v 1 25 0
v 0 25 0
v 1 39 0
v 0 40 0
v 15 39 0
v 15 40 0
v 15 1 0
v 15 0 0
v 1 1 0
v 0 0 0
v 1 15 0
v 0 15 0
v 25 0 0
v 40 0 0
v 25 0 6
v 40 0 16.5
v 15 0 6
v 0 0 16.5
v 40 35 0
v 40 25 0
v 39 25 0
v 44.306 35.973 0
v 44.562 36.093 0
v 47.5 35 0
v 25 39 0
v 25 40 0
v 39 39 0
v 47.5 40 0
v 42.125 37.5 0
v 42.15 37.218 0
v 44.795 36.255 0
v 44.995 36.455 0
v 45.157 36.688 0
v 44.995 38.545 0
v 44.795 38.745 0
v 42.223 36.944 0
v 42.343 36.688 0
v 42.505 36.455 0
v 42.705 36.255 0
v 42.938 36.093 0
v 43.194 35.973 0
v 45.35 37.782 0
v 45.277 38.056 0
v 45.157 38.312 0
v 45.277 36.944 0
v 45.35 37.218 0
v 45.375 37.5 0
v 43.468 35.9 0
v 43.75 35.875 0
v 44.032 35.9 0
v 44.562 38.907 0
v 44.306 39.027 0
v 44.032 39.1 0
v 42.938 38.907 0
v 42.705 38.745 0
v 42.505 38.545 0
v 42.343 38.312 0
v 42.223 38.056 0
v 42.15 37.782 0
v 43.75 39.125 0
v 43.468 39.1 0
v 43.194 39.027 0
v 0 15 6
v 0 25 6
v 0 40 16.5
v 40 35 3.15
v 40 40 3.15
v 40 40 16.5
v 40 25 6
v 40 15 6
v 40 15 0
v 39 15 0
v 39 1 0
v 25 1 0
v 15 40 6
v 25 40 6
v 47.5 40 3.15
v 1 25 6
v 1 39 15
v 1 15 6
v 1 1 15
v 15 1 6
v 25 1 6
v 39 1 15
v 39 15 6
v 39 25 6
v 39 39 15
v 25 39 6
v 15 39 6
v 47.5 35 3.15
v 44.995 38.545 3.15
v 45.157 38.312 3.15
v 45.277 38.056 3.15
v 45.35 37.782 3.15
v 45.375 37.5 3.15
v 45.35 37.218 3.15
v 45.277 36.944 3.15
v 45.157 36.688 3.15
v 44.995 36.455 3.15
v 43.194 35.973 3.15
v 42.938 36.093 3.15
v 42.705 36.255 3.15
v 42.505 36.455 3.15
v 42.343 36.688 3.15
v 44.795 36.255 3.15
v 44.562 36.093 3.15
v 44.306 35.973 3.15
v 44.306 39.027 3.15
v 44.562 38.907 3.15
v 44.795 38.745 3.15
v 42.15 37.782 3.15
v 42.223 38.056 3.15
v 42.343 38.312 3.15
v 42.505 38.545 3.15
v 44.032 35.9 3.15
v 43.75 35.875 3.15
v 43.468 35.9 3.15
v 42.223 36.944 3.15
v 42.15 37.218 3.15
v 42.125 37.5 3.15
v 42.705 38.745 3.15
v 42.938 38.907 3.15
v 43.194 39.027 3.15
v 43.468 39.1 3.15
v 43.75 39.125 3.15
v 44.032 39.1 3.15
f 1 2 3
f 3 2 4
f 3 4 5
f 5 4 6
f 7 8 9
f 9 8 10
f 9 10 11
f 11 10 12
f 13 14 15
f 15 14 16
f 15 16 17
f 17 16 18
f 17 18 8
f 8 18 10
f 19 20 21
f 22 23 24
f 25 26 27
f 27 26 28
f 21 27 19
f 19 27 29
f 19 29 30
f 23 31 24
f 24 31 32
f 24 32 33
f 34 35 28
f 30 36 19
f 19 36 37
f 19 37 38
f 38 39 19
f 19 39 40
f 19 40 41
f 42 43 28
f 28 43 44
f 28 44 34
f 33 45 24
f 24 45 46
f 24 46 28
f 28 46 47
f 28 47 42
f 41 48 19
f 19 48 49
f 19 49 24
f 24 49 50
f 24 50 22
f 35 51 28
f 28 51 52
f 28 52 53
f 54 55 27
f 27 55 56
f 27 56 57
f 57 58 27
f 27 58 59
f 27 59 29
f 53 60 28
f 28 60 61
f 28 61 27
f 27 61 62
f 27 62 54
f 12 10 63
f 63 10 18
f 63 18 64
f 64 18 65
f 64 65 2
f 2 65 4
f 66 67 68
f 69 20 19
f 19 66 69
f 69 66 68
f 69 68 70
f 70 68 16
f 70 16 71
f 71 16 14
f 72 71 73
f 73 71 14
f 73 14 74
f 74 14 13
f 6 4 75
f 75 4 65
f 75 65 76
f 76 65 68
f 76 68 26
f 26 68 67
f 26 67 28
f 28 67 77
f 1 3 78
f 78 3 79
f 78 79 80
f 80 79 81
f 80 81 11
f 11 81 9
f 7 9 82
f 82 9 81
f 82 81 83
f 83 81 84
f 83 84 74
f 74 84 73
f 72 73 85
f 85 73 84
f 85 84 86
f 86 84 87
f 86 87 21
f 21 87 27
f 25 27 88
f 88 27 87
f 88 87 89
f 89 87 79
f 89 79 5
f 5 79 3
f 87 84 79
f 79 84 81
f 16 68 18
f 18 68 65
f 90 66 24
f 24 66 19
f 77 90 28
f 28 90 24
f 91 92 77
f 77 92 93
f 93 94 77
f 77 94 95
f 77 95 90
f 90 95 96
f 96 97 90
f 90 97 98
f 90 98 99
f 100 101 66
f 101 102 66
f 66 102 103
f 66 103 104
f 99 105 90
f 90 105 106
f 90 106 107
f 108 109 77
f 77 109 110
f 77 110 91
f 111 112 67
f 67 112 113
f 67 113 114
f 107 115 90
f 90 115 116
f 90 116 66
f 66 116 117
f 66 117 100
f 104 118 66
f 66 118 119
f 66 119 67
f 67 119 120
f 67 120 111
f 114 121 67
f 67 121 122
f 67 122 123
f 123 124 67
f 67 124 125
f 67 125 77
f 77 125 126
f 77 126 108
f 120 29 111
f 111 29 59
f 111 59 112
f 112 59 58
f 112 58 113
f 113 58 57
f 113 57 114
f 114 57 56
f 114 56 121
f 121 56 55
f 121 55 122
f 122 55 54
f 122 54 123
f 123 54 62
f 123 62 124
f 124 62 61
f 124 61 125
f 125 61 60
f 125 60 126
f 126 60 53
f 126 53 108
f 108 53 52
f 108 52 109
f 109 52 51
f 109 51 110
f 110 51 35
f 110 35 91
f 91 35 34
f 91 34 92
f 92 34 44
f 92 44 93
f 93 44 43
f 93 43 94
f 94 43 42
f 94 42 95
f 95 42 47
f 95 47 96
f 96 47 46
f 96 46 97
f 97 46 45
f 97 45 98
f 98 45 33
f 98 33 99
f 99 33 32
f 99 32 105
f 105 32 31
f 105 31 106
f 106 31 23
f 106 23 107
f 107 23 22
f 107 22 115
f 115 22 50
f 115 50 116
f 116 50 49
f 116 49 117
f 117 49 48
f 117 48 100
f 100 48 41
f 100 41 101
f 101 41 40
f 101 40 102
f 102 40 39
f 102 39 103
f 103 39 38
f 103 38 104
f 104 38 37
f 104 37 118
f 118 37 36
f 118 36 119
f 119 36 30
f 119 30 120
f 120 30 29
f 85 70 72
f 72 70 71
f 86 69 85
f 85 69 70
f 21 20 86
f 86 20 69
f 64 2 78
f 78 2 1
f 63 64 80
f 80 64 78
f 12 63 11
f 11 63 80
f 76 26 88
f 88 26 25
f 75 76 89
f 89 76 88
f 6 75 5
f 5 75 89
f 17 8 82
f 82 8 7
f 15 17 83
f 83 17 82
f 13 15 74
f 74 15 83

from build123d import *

# Parameters (mm, degrees)
SKETCH1_W               = 40
SKETCH1_H               = 40
SKETCH1_W_2             = 38
SKETCH1_H_2             = 38
BOSS_EXTRUDE1_DEPTH     = 15
SKETCH2_W               = 40
SKETCH2_H               = 40
BOSS_EXTRUDE2_DEPTH     = 1.5
SKETCH3_W               = 7.5
SKETCH3_H               = 5
SKETCH3_R               = 1.625
BOSS_EXTRUDE3_DEPTH     = 3.15
SKETCH4_W               = 6
SKETCH4_H               = 10
CUT_EXTRUDE1_DEPTH      = 1
CUT_EXTRUDE1_DEPTH_BACK = 48.5
SKETCH5_W               = 10
SKETCH5_H               = 6
CUT_EXTRUDE2_DEPTH      = 1
CUT_EXTRUDE2_DEPTH_BACK = 41


with BuildPart() as part:
    # Sketch1 → Boss-Extrude1 (new body)
    with BuildSketch(Plane.XY):
        with Locations((20, 20)):
            Rectangle(SKETCH1_W, SKETCH1_H)
        with Locations((20, 20)):
            Rectangle(SKETCH1_W_2, SKETCH1_H_2, mode=Mode.SUBTRACT)
    extrude(amount=BOSS_EXTRUDE1_DEPTH)

    # Sketch2 → Boss-Extrude2 (add)
    with BuildSketch(Plane.XY.offset(15)):
        with Locations((20, 20)):
            Rectangle(SKETCH2_W, SKETCH2_H)
    extrude(amount=BOSS_EXTRUDE2_DEPTH)

    # Sketch3 → Boss-Extrude3 (add)
    with BuildSketch(Plane(origin=(0, 0, 0), x_dir=(-1, 0, 0), z_dir=(0, 0, -1))):
        with Locations((-43.75, 37.5)):
            Rectangle(SKETCH3_W, SKETCH3_H)
        with Locations((-43.75, 37.5)):
            Circle(SKETCH3_R, mode=Mode.SUBTRACT)
    extrude(amount=-BOSS_EXTRUDE3_DEPTH)

    # Sketch4 → Cut-Extrude1 (cut, two sides)
    with BuildSketch(Plane.ZY) as cut_extrude1_sk:
        with Locations((3, 20)):
            Rectangle(SKETCH4_W, SKETCH4_H)
    extrude(amount=CUT_EXTRUDE1_DEPTH, mode=Mode.SUBTRACT)
    extrude(cut_extrude1_sk.sketch, amount=-CUT_EXTRUDE1_DEPTH_BACK, mode=Mode.SUBTRACT)

    # Sketch5 → Cut-Extrude2 (cut, two sides)
    with BuildSketch(Plane.XZ) as cut_extrude2_sk:
        with Locations((20, 3)):
            Rectangle(SKETCH5_W, SKETCH5_H)
    extrude(amount=CUT_EXTRUDE2_DEPTH, mode=Mode.SUBTRACT)
    extrude(cut_extrude2_sk.sketch, amount=-CUT_EXTRUDE2_DEPTH_BACK, mode=Mode.SUBTRACT)


solid = part.part
